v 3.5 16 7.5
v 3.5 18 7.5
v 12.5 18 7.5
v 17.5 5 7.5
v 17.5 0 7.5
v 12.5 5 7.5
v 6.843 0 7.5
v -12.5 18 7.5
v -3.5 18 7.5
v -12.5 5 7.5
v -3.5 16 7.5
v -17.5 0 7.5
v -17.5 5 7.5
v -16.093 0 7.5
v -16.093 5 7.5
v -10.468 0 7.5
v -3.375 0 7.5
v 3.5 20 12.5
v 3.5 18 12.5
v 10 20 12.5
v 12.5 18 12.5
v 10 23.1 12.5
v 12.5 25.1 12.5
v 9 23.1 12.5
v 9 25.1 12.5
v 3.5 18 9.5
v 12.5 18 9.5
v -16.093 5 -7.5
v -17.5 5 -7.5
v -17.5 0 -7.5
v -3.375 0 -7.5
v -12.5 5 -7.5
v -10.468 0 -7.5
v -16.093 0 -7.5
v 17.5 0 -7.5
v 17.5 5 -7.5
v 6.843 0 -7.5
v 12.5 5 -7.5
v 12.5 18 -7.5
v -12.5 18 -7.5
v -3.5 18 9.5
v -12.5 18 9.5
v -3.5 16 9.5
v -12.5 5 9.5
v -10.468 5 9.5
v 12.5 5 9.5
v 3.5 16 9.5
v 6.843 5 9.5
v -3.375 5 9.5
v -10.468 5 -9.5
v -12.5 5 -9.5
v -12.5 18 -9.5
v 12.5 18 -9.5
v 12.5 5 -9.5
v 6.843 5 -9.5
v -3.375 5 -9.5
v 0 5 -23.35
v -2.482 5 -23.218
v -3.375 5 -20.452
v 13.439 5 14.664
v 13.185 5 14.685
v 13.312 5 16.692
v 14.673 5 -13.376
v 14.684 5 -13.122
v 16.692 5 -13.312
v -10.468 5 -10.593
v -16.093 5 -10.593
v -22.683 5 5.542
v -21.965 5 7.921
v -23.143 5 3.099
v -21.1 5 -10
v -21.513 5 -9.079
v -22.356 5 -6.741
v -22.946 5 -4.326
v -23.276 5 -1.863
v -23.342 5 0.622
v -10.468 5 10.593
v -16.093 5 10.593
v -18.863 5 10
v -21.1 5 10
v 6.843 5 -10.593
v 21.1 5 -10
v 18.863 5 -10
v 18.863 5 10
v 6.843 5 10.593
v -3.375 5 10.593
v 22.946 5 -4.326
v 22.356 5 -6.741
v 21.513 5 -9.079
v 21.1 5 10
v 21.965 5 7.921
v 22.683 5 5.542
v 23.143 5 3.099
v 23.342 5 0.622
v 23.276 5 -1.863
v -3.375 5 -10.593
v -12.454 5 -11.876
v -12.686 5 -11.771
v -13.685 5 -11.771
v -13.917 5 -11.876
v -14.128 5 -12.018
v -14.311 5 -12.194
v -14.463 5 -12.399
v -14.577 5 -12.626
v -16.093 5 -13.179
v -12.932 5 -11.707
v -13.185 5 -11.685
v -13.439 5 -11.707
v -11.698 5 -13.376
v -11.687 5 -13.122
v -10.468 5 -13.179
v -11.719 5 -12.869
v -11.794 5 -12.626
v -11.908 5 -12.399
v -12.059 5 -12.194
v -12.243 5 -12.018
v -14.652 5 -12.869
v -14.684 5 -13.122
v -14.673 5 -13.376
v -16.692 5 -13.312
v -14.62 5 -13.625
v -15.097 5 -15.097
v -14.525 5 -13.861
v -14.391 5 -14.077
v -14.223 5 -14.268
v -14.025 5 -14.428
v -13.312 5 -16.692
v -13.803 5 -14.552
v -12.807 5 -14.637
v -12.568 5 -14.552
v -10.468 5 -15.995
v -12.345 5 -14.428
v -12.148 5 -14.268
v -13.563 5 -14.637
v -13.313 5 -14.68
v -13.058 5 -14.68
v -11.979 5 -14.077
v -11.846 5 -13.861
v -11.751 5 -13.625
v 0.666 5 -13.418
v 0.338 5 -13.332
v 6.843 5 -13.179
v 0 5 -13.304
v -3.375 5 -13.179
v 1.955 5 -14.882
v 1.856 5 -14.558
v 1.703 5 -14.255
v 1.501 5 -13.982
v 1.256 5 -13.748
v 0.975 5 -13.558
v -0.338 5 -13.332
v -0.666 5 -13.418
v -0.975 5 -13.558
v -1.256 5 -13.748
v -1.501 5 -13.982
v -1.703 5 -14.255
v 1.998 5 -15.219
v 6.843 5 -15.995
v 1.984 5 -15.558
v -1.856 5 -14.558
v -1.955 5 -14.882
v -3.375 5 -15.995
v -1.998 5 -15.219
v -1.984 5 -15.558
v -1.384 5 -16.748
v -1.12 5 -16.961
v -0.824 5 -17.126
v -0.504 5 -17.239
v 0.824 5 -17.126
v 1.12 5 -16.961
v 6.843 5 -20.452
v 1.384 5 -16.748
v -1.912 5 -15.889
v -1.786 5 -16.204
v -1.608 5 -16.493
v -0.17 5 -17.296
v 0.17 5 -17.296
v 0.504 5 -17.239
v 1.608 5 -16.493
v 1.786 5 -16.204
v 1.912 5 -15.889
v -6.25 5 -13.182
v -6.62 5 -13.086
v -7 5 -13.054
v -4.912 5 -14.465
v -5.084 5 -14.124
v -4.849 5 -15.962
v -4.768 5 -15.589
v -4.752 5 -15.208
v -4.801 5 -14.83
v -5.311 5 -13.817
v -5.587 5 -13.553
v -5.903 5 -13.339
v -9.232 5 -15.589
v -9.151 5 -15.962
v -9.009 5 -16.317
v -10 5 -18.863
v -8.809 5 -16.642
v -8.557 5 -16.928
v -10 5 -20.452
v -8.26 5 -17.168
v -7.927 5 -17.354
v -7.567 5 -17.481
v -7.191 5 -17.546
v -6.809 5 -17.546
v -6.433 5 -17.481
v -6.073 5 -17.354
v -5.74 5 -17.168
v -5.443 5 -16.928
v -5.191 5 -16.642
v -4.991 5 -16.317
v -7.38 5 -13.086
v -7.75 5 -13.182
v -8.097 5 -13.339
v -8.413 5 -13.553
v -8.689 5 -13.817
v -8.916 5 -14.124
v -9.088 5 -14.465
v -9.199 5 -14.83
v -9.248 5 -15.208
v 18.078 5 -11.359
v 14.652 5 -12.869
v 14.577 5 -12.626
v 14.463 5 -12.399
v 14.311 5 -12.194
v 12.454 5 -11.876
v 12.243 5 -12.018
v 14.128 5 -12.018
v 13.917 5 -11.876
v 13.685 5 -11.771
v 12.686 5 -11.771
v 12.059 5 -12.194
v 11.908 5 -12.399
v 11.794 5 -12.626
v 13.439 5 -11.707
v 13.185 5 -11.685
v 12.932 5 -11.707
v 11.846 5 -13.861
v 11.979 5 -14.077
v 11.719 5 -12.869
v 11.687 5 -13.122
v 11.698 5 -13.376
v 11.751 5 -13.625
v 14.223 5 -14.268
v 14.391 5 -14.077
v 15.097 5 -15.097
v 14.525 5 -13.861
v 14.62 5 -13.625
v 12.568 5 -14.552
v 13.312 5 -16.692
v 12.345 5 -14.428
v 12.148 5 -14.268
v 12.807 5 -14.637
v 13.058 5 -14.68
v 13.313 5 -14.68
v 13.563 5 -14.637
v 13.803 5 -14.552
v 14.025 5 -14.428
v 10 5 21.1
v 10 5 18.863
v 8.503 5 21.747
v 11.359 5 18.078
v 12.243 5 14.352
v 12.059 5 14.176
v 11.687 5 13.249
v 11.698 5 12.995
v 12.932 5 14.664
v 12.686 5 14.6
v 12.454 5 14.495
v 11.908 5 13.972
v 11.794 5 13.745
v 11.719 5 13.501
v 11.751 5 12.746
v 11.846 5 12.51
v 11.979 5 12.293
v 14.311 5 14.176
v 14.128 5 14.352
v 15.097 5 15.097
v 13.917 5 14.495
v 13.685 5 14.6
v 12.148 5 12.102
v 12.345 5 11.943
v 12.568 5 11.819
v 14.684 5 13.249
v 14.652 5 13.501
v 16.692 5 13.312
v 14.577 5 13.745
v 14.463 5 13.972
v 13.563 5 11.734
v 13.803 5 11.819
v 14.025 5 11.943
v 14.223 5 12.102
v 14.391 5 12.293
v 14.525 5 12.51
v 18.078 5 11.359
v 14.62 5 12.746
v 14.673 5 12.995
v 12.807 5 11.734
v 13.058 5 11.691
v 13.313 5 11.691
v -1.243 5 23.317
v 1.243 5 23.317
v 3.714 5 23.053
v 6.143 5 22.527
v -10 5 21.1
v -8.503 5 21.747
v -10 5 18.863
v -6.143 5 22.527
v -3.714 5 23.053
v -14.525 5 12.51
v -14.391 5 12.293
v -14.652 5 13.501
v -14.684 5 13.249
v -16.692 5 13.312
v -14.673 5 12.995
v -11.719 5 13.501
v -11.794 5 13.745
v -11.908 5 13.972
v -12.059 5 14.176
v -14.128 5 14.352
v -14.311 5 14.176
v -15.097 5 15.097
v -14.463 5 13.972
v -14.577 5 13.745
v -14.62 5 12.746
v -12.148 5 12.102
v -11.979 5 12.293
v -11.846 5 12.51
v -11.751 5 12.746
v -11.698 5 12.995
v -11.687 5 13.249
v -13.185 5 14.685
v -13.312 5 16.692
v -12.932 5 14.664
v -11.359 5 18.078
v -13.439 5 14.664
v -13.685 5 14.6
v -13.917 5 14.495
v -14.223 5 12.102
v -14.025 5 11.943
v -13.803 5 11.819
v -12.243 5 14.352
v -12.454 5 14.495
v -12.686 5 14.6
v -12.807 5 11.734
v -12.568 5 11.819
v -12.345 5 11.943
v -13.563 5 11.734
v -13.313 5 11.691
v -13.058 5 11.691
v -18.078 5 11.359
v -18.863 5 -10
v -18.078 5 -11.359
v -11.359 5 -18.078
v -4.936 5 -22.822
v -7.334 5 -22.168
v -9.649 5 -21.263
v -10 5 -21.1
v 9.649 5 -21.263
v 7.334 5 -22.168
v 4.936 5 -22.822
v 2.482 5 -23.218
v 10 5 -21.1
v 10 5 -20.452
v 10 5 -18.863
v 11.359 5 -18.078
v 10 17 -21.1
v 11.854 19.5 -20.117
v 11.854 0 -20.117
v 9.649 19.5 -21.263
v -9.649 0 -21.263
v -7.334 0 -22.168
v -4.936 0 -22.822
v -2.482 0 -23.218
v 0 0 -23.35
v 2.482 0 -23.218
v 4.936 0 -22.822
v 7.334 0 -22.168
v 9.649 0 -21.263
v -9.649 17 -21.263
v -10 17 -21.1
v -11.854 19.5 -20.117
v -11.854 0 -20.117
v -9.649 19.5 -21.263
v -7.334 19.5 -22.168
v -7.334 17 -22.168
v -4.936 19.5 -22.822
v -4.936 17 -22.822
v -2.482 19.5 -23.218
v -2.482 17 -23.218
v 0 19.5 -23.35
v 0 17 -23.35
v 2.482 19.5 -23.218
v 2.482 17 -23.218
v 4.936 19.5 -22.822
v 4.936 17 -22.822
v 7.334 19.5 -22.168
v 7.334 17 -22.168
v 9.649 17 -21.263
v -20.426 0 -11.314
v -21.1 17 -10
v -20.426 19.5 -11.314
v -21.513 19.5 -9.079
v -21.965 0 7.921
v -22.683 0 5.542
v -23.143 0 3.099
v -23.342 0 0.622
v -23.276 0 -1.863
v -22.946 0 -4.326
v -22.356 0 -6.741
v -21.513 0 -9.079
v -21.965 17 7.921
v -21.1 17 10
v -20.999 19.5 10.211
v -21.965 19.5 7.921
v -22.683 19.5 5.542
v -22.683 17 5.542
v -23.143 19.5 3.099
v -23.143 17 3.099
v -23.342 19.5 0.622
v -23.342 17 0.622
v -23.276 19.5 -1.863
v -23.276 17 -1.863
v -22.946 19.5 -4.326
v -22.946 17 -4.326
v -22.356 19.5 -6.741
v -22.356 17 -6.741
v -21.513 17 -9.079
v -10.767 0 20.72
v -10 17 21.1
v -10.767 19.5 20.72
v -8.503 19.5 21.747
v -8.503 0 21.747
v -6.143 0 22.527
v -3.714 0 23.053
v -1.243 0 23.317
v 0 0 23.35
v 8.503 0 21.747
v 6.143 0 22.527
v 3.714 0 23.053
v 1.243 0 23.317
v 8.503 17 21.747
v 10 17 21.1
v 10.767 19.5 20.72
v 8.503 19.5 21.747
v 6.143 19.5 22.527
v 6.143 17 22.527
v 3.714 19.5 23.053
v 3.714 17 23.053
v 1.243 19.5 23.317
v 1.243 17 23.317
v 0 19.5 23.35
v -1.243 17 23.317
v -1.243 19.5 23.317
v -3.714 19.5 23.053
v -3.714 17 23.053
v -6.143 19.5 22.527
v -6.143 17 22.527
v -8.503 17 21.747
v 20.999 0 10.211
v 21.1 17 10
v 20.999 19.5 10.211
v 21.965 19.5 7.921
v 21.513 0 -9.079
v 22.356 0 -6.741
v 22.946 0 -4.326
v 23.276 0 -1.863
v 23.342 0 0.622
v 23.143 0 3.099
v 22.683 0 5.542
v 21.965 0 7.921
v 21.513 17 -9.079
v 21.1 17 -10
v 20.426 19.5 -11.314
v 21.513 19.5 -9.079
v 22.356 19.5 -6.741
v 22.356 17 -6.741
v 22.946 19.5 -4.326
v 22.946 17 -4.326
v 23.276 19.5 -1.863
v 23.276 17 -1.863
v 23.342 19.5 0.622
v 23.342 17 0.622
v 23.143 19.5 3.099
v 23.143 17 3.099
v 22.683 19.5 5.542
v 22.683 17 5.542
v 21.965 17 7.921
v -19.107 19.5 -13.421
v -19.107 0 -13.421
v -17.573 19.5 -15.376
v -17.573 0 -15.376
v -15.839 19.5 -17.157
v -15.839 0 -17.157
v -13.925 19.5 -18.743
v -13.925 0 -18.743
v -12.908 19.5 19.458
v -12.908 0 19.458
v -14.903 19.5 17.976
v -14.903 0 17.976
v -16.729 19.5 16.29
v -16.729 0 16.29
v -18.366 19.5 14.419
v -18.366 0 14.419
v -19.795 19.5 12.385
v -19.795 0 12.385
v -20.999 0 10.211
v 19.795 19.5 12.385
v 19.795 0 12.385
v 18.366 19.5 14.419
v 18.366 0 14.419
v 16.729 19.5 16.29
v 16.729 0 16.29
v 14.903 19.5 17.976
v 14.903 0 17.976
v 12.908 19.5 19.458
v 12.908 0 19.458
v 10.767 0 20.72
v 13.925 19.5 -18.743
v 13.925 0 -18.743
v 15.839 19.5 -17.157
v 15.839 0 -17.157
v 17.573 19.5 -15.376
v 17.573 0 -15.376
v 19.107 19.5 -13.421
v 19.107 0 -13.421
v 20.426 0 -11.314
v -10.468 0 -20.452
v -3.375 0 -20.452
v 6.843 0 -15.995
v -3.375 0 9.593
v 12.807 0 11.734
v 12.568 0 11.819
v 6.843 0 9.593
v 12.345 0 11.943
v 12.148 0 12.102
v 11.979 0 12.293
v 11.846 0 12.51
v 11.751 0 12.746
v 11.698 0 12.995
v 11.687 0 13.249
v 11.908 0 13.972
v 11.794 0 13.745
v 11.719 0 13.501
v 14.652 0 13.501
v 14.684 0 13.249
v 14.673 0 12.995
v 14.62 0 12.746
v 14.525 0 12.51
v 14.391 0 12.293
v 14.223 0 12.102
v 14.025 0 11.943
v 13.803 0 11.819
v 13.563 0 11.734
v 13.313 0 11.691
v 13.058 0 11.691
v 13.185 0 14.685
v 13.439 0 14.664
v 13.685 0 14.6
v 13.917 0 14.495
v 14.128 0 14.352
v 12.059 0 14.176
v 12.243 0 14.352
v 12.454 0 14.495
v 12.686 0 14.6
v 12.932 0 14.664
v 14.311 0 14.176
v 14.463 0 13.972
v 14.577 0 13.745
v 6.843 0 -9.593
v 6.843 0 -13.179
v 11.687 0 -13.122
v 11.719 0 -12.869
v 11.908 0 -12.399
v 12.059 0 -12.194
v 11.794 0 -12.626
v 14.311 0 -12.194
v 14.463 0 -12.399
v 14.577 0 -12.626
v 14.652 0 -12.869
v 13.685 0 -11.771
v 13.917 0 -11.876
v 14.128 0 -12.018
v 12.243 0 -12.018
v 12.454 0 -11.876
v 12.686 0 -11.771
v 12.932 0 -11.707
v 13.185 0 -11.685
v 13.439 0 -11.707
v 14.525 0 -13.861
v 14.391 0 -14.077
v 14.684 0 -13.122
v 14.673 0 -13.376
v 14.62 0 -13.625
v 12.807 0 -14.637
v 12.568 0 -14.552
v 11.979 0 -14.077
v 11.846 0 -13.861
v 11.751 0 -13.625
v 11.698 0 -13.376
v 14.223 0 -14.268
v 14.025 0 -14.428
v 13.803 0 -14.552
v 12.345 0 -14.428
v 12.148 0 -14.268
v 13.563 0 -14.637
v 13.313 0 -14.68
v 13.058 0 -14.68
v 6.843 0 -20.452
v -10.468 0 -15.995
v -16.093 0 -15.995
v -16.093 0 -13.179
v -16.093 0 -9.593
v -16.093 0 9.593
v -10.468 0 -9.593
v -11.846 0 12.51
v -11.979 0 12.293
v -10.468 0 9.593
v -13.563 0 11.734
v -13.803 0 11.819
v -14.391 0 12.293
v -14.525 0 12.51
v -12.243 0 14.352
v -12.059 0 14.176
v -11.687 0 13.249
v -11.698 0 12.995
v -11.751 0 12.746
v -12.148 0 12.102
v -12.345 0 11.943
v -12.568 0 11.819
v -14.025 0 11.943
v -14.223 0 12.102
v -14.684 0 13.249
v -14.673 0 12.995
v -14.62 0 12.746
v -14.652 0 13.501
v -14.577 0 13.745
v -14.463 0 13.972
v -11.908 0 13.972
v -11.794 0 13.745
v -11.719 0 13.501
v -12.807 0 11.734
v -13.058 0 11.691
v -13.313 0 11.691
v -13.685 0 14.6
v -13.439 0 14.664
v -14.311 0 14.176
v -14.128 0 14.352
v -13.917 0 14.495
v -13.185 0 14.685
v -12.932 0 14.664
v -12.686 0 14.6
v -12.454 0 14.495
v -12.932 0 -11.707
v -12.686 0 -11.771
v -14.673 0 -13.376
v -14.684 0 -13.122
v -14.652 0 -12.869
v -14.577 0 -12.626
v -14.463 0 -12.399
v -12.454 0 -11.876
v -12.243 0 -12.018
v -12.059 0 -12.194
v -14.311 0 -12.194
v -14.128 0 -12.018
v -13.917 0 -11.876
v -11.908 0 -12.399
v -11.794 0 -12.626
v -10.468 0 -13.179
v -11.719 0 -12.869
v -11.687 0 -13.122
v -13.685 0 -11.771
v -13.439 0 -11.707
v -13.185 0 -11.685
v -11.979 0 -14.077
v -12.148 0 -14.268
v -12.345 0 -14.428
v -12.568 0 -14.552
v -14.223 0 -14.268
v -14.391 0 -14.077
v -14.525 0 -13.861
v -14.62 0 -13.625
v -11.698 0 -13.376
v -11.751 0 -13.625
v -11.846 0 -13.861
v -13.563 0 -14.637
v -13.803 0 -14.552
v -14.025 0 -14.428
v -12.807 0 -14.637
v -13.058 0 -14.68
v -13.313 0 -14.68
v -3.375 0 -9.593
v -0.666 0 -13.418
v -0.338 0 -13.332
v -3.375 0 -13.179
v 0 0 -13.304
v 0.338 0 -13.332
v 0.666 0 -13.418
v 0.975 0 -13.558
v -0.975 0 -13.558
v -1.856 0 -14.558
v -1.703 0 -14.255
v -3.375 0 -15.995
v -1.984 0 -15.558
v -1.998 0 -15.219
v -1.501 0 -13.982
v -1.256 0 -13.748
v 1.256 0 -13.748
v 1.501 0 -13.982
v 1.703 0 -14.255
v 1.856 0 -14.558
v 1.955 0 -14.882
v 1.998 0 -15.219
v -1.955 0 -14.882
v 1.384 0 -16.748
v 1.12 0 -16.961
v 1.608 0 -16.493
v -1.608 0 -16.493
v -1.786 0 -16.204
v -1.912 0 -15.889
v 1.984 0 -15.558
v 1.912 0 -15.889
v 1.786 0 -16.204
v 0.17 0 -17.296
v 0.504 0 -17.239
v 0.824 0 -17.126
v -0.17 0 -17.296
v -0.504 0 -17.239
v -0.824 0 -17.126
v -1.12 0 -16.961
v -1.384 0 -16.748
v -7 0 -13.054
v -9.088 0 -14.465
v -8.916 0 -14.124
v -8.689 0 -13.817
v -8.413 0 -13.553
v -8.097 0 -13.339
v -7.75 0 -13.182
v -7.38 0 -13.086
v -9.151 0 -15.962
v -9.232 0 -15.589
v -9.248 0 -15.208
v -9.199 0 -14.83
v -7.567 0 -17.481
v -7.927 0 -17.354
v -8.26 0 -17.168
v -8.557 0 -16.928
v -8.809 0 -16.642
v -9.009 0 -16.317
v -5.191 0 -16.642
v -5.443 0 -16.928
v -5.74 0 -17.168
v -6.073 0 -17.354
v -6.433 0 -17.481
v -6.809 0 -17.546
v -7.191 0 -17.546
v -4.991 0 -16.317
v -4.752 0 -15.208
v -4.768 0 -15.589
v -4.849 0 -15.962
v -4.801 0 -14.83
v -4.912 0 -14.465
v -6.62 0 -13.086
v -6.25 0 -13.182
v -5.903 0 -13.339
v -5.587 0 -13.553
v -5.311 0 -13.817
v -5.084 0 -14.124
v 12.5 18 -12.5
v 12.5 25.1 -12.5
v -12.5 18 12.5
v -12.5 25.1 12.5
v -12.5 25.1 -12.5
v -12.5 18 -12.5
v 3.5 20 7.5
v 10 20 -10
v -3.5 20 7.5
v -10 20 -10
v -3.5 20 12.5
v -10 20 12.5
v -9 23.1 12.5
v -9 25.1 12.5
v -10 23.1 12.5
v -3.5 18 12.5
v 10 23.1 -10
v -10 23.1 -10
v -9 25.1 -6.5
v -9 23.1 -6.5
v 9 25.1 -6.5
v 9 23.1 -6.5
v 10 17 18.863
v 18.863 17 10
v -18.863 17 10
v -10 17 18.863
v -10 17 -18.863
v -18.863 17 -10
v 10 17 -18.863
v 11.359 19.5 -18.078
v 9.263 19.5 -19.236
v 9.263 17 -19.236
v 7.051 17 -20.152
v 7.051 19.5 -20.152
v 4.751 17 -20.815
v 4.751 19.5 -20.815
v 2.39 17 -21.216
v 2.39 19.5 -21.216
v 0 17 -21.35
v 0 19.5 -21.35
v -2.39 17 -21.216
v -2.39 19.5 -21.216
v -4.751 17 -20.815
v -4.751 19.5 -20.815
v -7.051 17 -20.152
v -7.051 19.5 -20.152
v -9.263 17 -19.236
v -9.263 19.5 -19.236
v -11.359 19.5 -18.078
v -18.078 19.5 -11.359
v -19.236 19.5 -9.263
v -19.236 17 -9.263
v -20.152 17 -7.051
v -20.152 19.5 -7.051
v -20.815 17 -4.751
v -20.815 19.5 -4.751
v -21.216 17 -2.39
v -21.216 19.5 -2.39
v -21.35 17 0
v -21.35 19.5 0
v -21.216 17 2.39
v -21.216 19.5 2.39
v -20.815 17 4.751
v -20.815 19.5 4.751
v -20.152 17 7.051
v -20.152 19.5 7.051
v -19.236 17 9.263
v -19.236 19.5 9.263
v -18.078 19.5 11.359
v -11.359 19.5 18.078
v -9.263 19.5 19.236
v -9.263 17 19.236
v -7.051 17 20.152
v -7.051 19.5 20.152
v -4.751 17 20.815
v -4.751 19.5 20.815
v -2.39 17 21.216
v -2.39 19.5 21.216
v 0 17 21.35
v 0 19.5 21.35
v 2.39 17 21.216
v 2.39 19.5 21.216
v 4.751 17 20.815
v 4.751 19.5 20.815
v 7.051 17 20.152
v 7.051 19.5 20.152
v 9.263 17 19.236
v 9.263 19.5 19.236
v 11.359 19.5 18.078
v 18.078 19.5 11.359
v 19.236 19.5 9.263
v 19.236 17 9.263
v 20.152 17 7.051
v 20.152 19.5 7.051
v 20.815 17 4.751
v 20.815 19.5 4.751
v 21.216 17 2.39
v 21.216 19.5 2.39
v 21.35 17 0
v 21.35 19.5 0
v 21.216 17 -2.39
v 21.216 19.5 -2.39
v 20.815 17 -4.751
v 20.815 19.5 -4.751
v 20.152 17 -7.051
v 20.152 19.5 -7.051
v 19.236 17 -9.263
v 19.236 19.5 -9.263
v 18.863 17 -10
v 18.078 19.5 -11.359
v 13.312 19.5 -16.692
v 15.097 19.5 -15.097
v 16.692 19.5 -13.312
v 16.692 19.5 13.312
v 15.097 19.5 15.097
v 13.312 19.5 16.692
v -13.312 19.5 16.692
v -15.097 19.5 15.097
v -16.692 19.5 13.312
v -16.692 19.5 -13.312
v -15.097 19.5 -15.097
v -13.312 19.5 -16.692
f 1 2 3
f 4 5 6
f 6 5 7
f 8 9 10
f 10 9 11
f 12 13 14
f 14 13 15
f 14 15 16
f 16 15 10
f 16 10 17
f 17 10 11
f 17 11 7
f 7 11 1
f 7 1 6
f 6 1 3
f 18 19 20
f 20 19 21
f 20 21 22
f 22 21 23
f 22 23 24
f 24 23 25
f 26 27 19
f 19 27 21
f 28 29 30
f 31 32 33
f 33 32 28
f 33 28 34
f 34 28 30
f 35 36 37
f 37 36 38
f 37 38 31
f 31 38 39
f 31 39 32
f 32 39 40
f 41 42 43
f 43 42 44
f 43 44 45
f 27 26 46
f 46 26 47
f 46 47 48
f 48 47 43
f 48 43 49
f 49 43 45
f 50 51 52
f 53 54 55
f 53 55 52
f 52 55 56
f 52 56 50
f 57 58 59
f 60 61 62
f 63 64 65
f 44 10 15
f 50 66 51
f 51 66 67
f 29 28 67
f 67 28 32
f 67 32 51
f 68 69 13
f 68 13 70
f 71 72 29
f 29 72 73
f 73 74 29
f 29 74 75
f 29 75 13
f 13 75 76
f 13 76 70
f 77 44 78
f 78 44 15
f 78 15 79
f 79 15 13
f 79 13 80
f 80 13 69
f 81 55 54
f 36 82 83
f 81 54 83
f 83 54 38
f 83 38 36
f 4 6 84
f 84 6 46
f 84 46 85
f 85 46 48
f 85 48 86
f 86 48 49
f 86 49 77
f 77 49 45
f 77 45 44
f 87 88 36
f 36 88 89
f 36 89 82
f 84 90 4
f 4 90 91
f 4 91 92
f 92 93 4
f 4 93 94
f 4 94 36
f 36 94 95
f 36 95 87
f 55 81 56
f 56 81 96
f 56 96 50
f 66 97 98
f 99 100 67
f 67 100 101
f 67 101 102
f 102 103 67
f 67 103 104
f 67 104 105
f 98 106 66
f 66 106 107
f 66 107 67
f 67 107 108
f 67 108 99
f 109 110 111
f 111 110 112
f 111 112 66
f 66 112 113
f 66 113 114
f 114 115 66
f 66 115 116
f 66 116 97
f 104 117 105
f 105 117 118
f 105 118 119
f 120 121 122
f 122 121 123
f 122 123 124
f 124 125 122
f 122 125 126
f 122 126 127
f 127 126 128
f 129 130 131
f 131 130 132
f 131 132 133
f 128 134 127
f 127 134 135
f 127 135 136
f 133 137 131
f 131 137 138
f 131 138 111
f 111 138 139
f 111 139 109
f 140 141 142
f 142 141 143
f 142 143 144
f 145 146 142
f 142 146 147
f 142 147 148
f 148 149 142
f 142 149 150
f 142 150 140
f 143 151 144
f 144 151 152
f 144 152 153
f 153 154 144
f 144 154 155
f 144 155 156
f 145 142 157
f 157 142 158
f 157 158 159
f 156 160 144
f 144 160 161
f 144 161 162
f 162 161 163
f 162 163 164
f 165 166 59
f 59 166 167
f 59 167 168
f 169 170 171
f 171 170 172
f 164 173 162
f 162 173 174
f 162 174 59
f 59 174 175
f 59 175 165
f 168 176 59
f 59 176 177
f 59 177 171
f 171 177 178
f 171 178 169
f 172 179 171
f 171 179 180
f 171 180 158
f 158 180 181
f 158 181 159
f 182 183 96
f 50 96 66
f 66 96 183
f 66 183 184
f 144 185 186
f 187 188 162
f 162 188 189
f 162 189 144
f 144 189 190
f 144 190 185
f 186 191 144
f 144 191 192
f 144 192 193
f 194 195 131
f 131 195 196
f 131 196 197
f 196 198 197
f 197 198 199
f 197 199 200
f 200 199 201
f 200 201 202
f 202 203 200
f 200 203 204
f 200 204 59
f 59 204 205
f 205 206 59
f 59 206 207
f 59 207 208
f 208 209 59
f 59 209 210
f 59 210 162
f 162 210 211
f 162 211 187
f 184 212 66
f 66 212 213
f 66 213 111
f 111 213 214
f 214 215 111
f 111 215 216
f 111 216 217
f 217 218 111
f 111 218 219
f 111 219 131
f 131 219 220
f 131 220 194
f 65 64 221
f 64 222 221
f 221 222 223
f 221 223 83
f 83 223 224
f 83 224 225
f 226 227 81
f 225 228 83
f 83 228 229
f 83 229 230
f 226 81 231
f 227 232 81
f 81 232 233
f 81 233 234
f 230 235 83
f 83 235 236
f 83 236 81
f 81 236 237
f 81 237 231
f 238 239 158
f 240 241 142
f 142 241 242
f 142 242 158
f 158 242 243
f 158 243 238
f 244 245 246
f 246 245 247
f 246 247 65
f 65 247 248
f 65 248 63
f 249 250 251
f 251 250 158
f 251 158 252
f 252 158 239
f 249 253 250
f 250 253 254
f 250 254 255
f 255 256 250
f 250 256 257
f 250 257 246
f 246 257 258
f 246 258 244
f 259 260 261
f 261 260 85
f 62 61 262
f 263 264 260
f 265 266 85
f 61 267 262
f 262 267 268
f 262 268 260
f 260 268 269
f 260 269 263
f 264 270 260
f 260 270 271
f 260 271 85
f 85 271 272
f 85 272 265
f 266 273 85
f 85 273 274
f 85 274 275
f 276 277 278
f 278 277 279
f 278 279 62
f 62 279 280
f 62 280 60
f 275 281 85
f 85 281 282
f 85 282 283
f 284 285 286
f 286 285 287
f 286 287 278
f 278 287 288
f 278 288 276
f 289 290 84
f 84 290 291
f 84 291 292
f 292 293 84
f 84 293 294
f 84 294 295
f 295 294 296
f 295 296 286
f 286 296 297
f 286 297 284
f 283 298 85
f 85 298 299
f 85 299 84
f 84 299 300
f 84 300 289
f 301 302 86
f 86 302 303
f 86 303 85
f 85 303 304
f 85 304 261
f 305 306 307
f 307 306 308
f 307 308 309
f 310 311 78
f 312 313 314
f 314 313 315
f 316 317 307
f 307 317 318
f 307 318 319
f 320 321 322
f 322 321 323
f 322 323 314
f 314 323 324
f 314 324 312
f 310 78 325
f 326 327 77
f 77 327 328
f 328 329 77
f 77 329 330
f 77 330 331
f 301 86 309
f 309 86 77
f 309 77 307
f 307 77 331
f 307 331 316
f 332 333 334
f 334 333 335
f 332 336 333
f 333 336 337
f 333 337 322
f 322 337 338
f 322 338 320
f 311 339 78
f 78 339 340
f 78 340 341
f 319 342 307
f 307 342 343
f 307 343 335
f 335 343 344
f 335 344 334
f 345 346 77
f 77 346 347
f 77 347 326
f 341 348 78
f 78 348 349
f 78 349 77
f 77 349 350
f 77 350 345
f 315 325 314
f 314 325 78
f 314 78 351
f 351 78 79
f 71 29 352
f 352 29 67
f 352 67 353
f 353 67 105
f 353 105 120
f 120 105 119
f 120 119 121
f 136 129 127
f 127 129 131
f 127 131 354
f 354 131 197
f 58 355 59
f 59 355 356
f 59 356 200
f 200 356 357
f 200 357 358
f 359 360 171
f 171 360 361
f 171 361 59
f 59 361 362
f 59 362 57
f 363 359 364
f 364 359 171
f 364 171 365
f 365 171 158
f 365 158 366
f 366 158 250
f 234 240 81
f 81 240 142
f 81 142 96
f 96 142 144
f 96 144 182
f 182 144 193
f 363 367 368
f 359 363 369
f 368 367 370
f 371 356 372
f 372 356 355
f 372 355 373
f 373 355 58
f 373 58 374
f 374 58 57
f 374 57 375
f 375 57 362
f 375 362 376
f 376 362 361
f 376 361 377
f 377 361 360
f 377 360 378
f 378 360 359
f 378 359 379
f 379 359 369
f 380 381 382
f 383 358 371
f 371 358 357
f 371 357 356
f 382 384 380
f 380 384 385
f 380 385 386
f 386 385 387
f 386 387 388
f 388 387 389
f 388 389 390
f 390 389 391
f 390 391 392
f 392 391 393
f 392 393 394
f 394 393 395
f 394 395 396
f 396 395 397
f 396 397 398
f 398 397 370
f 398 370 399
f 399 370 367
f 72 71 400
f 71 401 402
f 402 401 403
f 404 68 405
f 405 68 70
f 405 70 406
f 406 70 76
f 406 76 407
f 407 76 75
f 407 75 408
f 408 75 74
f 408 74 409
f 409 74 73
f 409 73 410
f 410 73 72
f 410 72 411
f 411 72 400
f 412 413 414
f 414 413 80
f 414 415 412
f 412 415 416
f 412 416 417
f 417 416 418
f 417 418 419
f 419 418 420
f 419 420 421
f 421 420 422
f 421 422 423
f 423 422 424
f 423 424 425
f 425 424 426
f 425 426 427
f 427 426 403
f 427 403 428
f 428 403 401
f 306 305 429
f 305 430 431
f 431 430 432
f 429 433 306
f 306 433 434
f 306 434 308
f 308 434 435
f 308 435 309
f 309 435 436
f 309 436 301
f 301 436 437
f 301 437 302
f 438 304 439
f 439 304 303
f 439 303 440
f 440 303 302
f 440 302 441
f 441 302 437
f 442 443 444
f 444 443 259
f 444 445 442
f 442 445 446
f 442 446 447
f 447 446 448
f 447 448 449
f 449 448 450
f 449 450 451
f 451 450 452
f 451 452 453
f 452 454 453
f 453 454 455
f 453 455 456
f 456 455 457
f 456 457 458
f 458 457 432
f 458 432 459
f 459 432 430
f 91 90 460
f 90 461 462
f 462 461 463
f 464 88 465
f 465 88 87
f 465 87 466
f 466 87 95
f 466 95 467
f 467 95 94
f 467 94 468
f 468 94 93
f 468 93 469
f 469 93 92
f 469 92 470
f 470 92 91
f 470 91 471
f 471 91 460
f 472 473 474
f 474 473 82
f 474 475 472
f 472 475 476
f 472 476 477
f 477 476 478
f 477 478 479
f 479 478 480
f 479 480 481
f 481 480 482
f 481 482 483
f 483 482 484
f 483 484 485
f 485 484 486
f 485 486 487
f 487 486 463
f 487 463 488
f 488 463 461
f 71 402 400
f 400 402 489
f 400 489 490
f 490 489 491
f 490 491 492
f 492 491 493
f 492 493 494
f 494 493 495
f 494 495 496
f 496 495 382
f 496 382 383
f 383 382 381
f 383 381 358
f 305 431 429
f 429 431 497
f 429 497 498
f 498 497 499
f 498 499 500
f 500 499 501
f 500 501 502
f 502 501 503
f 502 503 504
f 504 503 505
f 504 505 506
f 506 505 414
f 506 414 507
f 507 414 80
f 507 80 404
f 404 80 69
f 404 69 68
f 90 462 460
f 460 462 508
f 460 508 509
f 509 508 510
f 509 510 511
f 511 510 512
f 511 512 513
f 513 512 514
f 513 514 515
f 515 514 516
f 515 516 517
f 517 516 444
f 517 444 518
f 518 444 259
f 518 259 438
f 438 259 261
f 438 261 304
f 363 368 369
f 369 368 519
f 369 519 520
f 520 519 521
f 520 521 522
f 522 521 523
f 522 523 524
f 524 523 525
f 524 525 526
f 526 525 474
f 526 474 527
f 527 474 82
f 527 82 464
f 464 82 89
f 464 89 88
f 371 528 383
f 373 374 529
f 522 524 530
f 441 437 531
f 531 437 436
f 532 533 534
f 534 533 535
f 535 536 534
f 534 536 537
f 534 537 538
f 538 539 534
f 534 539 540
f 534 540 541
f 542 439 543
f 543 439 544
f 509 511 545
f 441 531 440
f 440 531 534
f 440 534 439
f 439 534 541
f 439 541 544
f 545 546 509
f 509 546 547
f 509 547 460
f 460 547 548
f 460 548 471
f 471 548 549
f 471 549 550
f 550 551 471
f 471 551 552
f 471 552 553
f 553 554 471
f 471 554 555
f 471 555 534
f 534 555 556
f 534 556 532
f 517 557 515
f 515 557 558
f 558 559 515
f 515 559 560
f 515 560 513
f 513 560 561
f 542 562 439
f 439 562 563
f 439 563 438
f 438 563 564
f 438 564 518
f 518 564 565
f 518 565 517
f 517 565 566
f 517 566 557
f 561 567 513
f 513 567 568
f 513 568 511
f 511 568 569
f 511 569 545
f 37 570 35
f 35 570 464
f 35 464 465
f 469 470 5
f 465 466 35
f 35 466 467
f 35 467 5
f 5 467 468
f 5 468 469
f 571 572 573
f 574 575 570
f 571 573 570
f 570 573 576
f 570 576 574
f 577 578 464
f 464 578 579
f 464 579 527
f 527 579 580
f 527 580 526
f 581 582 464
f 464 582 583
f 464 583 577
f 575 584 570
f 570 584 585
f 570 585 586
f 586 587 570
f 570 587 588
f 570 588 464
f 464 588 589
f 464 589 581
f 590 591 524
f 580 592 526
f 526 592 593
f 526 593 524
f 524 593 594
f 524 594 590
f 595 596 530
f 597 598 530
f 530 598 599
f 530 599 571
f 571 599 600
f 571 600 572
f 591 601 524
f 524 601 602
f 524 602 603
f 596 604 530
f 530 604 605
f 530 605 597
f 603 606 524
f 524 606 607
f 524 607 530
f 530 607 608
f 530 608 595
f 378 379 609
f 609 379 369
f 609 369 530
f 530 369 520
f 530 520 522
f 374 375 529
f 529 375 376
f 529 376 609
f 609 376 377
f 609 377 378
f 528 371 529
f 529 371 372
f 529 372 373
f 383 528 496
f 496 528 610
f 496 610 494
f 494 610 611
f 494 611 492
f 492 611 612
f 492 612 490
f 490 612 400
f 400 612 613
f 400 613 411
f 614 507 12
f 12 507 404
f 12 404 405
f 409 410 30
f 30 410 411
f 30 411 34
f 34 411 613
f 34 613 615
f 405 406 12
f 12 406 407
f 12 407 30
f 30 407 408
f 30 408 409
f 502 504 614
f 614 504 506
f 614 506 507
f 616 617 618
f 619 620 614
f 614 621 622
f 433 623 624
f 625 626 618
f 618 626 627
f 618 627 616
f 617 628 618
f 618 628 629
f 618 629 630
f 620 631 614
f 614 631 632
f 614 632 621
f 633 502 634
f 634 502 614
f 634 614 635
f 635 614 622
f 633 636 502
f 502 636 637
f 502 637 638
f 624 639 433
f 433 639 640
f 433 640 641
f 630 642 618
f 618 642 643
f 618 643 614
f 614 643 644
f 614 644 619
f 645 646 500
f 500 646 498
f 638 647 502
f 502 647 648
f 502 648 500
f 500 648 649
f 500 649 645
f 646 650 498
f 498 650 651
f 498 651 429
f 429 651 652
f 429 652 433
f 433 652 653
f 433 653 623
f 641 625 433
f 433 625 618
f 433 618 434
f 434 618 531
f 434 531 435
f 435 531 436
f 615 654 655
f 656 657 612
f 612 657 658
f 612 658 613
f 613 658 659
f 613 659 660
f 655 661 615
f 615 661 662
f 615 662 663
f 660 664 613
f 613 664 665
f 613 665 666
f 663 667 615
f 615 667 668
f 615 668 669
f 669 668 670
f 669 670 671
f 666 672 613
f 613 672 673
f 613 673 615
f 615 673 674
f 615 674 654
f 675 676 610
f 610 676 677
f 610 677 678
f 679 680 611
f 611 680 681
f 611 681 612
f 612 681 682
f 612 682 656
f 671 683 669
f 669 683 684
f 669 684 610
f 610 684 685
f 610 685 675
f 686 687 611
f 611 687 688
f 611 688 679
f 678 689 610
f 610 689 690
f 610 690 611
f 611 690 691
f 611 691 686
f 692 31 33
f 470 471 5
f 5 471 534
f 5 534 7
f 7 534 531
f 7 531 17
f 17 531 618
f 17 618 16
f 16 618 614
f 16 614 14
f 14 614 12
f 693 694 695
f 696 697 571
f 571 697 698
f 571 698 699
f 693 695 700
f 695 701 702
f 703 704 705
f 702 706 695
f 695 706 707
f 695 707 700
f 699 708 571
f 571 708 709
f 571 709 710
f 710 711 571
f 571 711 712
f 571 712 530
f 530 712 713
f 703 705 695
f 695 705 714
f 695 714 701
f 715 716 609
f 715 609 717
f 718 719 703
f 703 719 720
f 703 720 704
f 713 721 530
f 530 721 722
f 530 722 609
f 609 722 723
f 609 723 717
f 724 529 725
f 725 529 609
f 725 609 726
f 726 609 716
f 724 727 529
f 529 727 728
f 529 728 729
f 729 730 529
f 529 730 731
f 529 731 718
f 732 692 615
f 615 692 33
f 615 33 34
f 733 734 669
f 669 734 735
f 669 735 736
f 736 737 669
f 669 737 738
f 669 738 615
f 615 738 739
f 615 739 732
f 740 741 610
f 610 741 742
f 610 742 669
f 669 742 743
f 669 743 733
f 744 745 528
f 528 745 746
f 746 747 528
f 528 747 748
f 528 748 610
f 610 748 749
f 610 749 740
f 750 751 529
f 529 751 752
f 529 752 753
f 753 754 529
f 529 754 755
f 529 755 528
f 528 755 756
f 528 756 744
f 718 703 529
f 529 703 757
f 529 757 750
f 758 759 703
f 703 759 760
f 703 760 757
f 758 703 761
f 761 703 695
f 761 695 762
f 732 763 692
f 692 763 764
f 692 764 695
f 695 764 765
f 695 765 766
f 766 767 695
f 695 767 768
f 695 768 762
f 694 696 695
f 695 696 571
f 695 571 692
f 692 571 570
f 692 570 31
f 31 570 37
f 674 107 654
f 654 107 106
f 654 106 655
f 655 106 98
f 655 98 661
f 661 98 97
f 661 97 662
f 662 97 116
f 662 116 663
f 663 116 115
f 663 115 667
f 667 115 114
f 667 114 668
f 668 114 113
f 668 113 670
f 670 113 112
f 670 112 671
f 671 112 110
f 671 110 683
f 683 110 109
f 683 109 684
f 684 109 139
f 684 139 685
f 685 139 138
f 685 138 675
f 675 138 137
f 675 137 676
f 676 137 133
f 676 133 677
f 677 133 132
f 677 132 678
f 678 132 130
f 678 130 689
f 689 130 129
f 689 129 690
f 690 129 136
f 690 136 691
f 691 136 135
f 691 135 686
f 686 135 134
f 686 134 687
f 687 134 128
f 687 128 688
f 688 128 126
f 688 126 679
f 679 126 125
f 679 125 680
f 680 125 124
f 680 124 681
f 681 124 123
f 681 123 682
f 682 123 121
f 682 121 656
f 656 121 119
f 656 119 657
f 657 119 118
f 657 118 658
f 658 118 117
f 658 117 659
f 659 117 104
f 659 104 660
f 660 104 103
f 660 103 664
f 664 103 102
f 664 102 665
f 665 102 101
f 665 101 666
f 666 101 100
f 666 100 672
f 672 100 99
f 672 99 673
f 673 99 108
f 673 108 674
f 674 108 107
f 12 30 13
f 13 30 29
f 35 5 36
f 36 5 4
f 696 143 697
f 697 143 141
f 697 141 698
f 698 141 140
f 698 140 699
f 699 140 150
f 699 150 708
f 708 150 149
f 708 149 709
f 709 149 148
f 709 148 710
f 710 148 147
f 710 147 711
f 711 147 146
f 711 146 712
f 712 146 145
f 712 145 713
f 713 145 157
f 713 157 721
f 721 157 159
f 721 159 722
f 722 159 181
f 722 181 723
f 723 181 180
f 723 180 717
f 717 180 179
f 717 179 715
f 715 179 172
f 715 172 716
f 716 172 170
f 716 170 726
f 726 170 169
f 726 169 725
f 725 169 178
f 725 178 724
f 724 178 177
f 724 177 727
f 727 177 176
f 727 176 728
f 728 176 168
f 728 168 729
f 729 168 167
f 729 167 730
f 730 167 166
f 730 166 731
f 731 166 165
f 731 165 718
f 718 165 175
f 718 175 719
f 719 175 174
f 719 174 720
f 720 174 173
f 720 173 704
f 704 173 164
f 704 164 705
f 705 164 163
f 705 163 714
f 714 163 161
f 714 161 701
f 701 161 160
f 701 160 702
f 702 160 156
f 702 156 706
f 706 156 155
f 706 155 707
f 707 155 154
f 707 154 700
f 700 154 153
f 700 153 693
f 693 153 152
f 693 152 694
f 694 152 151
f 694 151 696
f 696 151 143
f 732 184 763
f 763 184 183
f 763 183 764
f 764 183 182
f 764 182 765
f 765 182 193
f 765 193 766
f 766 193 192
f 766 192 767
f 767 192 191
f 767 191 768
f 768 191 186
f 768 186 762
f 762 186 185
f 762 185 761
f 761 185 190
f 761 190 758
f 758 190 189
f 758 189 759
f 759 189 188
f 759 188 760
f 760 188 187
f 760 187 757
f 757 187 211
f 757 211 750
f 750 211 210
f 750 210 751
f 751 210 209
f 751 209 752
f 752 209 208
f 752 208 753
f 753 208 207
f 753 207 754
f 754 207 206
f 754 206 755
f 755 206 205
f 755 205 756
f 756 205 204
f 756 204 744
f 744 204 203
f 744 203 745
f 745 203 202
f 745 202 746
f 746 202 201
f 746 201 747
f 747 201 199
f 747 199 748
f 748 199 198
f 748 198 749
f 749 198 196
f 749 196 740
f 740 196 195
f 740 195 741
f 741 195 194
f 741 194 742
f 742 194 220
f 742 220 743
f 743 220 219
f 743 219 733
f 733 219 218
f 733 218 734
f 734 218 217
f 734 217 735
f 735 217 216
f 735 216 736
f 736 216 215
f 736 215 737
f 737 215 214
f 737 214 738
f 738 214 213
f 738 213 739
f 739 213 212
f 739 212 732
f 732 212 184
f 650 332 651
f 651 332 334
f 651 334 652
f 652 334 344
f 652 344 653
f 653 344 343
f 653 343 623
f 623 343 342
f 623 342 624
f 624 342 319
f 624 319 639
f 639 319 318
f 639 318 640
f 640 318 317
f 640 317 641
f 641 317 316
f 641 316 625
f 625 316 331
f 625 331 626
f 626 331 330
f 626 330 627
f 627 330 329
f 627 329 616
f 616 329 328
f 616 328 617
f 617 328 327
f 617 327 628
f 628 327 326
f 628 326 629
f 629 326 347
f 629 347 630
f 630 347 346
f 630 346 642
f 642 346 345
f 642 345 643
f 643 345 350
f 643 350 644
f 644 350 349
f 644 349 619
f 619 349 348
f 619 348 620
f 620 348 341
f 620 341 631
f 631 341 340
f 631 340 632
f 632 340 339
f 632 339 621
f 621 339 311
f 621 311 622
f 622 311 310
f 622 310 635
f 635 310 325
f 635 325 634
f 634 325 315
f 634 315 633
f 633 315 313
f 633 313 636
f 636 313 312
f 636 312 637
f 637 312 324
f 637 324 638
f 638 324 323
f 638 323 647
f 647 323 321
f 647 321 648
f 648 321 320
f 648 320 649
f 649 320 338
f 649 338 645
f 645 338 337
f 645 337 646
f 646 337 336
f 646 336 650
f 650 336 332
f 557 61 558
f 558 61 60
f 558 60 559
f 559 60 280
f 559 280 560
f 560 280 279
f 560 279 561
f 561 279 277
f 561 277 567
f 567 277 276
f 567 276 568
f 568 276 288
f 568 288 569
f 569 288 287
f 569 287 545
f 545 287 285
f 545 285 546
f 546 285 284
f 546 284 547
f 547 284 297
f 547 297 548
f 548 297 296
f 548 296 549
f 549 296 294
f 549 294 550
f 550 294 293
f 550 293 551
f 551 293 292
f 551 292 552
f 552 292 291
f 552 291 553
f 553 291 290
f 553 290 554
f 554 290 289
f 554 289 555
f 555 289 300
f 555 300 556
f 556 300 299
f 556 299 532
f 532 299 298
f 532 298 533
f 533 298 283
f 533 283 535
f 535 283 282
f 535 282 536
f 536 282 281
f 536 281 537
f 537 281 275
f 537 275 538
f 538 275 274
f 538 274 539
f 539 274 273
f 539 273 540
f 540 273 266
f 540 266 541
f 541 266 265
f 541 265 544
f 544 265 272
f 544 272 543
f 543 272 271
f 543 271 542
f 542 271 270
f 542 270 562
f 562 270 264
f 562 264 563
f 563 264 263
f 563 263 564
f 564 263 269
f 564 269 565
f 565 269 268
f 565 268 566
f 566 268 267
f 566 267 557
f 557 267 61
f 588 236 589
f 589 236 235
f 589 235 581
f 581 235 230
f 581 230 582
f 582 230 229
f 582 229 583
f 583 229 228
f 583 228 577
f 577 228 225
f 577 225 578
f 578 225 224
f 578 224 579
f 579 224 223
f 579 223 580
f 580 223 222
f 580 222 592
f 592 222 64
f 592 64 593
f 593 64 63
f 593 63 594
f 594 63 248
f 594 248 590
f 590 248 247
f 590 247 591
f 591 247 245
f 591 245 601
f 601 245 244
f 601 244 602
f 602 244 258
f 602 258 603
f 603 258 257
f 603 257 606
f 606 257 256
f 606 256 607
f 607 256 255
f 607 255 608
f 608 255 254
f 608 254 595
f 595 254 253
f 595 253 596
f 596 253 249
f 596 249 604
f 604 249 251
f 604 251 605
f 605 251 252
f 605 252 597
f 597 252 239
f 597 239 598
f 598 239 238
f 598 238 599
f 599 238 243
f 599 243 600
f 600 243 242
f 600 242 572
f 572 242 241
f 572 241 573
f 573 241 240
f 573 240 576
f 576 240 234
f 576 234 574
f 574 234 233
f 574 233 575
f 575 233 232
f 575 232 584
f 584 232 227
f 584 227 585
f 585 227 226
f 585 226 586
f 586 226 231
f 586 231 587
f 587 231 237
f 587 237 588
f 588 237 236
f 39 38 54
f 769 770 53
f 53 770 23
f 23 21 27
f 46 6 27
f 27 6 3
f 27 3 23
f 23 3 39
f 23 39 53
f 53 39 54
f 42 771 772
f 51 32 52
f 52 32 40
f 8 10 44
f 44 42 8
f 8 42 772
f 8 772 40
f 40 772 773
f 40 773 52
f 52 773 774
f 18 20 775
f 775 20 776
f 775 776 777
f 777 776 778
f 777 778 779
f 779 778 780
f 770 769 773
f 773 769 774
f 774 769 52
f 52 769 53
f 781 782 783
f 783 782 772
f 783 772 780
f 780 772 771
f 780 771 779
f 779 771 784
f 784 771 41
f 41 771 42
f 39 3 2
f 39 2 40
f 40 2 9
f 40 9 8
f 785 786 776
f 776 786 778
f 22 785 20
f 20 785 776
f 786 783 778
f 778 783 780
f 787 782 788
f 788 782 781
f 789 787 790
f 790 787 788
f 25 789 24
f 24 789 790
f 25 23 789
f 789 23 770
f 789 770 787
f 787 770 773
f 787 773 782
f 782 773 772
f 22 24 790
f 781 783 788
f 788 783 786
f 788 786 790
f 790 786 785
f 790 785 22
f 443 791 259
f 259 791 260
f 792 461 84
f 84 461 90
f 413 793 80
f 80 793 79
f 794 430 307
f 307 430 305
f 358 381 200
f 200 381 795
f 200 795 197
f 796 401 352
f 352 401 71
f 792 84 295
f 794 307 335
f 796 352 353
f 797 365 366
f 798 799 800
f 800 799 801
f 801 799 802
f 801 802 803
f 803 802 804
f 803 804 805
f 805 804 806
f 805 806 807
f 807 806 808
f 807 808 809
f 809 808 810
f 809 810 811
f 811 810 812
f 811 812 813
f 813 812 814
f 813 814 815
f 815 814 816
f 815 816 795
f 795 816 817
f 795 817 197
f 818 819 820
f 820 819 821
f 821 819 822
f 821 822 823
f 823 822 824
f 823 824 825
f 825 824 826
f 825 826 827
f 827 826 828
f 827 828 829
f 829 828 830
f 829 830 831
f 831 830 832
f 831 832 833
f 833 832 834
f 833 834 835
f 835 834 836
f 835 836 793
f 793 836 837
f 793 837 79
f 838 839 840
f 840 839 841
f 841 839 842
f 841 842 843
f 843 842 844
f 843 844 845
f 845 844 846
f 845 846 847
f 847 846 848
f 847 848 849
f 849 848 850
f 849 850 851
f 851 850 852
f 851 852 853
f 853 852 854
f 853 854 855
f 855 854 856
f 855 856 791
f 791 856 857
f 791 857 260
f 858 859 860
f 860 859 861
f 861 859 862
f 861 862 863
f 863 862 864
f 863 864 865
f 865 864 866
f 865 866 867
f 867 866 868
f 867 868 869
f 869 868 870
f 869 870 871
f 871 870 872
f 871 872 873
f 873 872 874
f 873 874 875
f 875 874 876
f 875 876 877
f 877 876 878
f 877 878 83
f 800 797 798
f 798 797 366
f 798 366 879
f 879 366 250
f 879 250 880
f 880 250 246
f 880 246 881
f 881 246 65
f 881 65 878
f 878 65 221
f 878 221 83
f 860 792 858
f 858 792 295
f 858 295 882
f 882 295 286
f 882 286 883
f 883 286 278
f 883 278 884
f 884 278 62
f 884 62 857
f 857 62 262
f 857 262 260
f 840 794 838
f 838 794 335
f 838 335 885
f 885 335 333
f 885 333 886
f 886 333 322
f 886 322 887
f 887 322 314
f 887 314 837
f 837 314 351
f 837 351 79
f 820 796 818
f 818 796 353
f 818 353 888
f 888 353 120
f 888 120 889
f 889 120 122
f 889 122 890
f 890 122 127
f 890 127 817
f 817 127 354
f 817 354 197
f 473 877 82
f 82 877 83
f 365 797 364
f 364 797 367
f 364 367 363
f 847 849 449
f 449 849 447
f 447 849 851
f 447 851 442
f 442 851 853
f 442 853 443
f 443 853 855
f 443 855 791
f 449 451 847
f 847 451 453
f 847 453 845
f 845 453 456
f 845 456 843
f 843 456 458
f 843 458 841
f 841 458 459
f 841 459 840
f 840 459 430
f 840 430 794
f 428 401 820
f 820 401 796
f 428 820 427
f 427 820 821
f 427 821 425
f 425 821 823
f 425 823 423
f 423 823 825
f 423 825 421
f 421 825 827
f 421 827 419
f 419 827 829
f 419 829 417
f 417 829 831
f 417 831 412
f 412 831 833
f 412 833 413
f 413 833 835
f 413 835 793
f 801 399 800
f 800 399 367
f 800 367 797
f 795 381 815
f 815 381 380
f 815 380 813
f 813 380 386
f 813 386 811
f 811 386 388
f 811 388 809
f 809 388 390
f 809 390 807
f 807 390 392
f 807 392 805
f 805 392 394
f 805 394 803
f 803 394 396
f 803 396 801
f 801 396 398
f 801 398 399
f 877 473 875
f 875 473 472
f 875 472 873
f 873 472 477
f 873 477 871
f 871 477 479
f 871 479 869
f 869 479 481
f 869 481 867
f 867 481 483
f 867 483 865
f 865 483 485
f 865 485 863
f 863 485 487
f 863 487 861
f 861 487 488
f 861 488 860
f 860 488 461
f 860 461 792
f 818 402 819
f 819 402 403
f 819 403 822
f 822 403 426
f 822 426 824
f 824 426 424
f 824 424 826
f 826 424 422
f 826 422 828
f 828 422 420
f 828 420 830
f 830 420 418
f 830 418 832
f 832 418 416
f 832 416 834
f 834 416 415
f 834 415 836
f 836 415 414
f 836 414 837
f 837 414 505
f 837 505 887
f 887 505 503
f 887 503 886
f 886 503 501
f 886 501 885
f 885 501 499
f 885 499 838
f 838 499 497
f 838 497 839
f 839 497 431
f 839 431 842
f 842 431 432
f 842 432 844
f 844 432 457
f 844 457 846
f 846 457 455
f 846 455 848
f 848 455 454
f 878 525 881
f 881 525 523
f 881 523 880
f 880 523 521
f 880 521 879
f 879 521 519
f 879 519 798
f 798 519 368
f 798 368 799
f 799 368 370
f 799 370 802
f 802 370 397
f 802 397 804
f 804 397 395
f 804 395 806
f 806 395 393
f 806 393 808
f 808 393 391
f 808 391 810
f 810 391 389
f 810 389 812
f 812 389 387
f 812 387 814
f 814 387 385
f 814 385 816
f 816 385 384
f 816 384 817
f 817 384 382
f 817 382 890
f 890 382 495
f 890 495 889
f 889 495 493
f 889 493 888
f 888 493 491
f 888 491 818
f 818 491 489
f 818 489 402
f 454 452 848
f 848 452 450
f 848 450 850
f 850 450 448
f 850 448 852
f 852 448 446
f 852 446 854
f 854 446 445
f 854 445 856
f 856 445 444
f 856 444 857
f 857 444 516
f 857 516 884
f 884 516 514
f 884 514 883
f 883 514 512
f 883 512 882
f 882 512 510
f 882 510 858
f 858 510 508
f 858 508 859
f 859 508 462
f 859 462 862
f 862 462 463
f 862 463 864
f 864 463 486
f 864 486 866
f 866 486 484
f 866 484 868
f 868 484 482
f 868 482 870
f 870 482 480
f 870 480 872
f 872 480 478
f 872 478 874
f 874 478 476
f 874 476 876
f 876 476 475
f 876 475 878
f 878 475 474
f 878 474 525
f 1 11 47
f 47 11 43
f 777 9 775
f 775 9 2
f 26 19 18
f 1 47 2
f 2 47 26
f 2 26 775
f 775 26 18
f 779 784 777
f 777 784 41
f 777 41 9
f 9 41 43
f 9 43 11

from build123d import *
from build123d.topology import SkipClean

# Parameters (mm, degrees)
ESQUISSE1_R                  = 23.35
BOSS_EXTRU_1_DEPTH           = 5
ESQUISSE9_W                  = 35
ESQUISSE9_H                  = 15
ESQUISSE9_R                  = 1.5
ESQUISSE9_R_2                = 2
ESQUISSE9_R_3                = 2.25
ENL_V_MAT_EXTRU_2_DEPTH      = 5
ESQUISSE9_3_W                = 25
ESQUISSE9_3_H                = 2
BOSS_EXTRU_2_DEPTH           = 15
BOSS_EXTRU_3_DEPTH           = 2
BOSS_EXTRU_4_DEPTH           = 3.1
BOSS_EXTRU_5_DEPTH           = 2
BOSS_EXTRU_6_DEPTH           = 12
ESQUISSE15_R                 = 23.35
ESQUISSE15_R_2               = 21.35
BOSS_EXTRU_7_DEPTH           = 2.5
ENL_V_MAT_EXTRU_4_DEPTH      = 39.606281872
ENL_V_MAT_EXTRU_4_DEPTH_BACK = 4
ESQUISSE16_W                 = 7
ESQUISSE16_H                 = 5


with BuildPart() as part:
    # Esquisse1 → Boss.-Extru.1 (new body)
    with BuildSketch(Plane(origin=(0, 0, 0), x_dir=(1, 0, 0), z_dir=(0, 1, 0))):
        Circle(ESQUISSE1_R)
    extrude(amount=BOSS_EXTRU_1_DEPTH)

    # Esquisse9 → Enlèv. mat.-Extru.2 (cut)
    with BuildSketch(Plane(origin=(0, 5, 0), x_dir=(1, 0, 0), z_dir=(0, 1, 0))):
        Rectangle(ESQUISSE9_W, ESQUISSE9_H)
        with Locations((-13.185409426, 13.185409426)):
            Circle(ESQUISSE9_R)
        with Locations((13.185409426, 13.185409426)):
            Circle(ESQUISSE9_R)
        with Locations((13.185409426, -13.185409426)):
            Circle(ESQUISSE9_R)
        with Locations((-13.185409426, -13.185409426)):
            Circle(ESQUISSE9_R)
        with Locations((0, 15.303635433)):
            Circle(ESQUISSE9_R_2)
        with Locations((-7, 15.303635433)):
            Circle(ESQUISSE9_R_3)
    extrude(amount=-ENL_V_MAT_EXTRU_2_DEPTH, mode=Mode.SUBTRACT)

    # Esquisse9<3> → Boss.-Extru.2 (add)
    with BuildSketch(Plane(origin=(0, 5, 0), x_dir=(1, 0, 0), z_dir=(0, 1, 0))):
        with Locations((0, 8.5)):
            Rectangle(ESQUISSE9_3_W, ESQUISSE9_3_H)
        with Locations((0, -8.5)):
            Rectangle(ESQUISSE9_3_W, ESQUISSE9_3_H)
    extrude(amount=BOSS_EXTRU_2_DEPTH)

    # Esquisse11 → Boss.-Extru.3 (add)
    with BuildSketch(Plane(origin=(0, 20, 0), x_dir=(1, 0, 0), z_dir=(0, 1, 0))):
        Polygon((-12.5, 9.5), (-12.5, -9.5), (-12.5, -12.5), (12.5, -12.5), (12.5, 12.5), (-12.5, 12.5), align=None)
    extrude(amount=-BOSS_EXTRU_3_DEPTH)

    # Esquisse12 → Boss.-Extru.4 (add)
    with BuildSketch(Plane(origin=(0, 20, 0), x_dir=(1, 0, 0), z_dir=(0, 1, 0))):
        Polygon((-12.5, -12.5), (-10, -12.5), (-10, 10), (10, 10), (10, -12.5), (12.5, -12.5), (12.5, 12.5), (-12.5, 12.5), align=None)
    extrude(amount=BOSS_EXTRU_4_DEPTH)

    # Esquisse13 → Boss.-Extru.5 (add)
    with BuildSketch(Plane(origin=(0, 23.1, 0), x_dir=(1, 0, 0), z_dir=(0, 1, 0))):
        Polygon((-9, -12.5), (-9, 6.5), (9, 6.5), (9, -12.5), (12.5, -12.5), (12.5, 12.5), (-12.5, 12.5), (-12.5, -12.5), align=None)
    extrude(amount=BOSS_EXTRU_5_DEPTH)

    # Esquisse14 → Boss.-Extru.6 (add)
    with BuildSketch(Plane(origin=(0, 5, 0), x_dir=(1, 0, 0), z_dir=(0, 1, 0))):
        with BuildLine():
            ThreePointArc((-10, 21.100296206), (-16.510943341, 16.510943341), (-21.100296206, 10))
            Line((-21.100296206, 10), (-18.863257937, 10))
            ThreePointArc((-18.863257937, 10), (-15.096729778, 15.096729778), (-10, 18.863257937))
            Line((-10, 18.863257937), (-10, 21.100296206))
        make_face()
        with BuildLine():
            Line((-18.863257937, -10), (-21.100296206, -10))
            ThreePointArc((-21.100296206, -10), (-16.510943341, -16.510943341), (-10, -21.100296206))
            Line((-10, -21.100296206), (-10, -18.863257937))
            ThreePointArc((-10, -18.863257937), (-15.096729778, -15.096729778), (-18.863257937, -10))
        make_face()
        with BuildLine():
            ThreePointArc((21.100296206, 10), (16.510943341, 16.510943341), (10, 21.100296206))
            Line((10, 21.100296206), (10, 18.863257937))
            ThreePointArc((10, 18.863257937), (15.096729778, 15.096729778), (18.863257937, 10))
            Line((18.863257937, 10), (21.100296206, 10))
        make_face()
        with BuildLine():
            Line((10, -18.863257937), (10, -21.100296206))
            ThreePointArc((10, -21.100296206), (16.510943341, -16.510943341), (21.100296206, -10))
            Line((21.100296206, -10), (18.863257937, -10))
            ThreePointArc((18.863257937, -10), (15.096729778, -15.096729778), (10, -18.863257937))
        make_face()
    extrude(amount=BOSS_EXTRU_6_DEPTH)

    # Esquisse15 → Boss.-Extru.7 (add)
    with SkipClean():  # the faces are left unmerged after this step: merging them gives an invalid solid
        with BuildSketch(Plane(origin=(0, 17, 0), x_dir=(1, 0, 0), z_dir=(0, 1, 0))):
            Circle(ESQUISSE15_R)
            Circle(ESQUISSE15_R_2, mode=Mode.SUBTRACT)
        extrude(amount=BOSS_EXTRU_7_DEPTH)

    # Esquisse16 → Enlèv. mat.-Extru.4 (cut, two sides: drawn at the far end of the back side and taken through both)
    with SkipClean():  # the faces are left unmerged after this step: merging them gives an invalid solid
        with BuildSketch(Plane(origin=(0, 20, 0), x_dir=(1, 0, 0), z_dir=(0, 1, 0)).offset(-ENL_V_MAT_EXTRU_4_DEPTH_BACK)):
            with Locations((0, -10)):
                Rectangle(ESQUISSE16_W, ESQUISSE16_H)
        extrude(amount=ENL_V_MAT_EXTRU_4_DEPTH + ENL_V_MAT_EXTRU_4_DEPTH_BACK, mode=Mode.SUBTRACT)


solid = part.part
